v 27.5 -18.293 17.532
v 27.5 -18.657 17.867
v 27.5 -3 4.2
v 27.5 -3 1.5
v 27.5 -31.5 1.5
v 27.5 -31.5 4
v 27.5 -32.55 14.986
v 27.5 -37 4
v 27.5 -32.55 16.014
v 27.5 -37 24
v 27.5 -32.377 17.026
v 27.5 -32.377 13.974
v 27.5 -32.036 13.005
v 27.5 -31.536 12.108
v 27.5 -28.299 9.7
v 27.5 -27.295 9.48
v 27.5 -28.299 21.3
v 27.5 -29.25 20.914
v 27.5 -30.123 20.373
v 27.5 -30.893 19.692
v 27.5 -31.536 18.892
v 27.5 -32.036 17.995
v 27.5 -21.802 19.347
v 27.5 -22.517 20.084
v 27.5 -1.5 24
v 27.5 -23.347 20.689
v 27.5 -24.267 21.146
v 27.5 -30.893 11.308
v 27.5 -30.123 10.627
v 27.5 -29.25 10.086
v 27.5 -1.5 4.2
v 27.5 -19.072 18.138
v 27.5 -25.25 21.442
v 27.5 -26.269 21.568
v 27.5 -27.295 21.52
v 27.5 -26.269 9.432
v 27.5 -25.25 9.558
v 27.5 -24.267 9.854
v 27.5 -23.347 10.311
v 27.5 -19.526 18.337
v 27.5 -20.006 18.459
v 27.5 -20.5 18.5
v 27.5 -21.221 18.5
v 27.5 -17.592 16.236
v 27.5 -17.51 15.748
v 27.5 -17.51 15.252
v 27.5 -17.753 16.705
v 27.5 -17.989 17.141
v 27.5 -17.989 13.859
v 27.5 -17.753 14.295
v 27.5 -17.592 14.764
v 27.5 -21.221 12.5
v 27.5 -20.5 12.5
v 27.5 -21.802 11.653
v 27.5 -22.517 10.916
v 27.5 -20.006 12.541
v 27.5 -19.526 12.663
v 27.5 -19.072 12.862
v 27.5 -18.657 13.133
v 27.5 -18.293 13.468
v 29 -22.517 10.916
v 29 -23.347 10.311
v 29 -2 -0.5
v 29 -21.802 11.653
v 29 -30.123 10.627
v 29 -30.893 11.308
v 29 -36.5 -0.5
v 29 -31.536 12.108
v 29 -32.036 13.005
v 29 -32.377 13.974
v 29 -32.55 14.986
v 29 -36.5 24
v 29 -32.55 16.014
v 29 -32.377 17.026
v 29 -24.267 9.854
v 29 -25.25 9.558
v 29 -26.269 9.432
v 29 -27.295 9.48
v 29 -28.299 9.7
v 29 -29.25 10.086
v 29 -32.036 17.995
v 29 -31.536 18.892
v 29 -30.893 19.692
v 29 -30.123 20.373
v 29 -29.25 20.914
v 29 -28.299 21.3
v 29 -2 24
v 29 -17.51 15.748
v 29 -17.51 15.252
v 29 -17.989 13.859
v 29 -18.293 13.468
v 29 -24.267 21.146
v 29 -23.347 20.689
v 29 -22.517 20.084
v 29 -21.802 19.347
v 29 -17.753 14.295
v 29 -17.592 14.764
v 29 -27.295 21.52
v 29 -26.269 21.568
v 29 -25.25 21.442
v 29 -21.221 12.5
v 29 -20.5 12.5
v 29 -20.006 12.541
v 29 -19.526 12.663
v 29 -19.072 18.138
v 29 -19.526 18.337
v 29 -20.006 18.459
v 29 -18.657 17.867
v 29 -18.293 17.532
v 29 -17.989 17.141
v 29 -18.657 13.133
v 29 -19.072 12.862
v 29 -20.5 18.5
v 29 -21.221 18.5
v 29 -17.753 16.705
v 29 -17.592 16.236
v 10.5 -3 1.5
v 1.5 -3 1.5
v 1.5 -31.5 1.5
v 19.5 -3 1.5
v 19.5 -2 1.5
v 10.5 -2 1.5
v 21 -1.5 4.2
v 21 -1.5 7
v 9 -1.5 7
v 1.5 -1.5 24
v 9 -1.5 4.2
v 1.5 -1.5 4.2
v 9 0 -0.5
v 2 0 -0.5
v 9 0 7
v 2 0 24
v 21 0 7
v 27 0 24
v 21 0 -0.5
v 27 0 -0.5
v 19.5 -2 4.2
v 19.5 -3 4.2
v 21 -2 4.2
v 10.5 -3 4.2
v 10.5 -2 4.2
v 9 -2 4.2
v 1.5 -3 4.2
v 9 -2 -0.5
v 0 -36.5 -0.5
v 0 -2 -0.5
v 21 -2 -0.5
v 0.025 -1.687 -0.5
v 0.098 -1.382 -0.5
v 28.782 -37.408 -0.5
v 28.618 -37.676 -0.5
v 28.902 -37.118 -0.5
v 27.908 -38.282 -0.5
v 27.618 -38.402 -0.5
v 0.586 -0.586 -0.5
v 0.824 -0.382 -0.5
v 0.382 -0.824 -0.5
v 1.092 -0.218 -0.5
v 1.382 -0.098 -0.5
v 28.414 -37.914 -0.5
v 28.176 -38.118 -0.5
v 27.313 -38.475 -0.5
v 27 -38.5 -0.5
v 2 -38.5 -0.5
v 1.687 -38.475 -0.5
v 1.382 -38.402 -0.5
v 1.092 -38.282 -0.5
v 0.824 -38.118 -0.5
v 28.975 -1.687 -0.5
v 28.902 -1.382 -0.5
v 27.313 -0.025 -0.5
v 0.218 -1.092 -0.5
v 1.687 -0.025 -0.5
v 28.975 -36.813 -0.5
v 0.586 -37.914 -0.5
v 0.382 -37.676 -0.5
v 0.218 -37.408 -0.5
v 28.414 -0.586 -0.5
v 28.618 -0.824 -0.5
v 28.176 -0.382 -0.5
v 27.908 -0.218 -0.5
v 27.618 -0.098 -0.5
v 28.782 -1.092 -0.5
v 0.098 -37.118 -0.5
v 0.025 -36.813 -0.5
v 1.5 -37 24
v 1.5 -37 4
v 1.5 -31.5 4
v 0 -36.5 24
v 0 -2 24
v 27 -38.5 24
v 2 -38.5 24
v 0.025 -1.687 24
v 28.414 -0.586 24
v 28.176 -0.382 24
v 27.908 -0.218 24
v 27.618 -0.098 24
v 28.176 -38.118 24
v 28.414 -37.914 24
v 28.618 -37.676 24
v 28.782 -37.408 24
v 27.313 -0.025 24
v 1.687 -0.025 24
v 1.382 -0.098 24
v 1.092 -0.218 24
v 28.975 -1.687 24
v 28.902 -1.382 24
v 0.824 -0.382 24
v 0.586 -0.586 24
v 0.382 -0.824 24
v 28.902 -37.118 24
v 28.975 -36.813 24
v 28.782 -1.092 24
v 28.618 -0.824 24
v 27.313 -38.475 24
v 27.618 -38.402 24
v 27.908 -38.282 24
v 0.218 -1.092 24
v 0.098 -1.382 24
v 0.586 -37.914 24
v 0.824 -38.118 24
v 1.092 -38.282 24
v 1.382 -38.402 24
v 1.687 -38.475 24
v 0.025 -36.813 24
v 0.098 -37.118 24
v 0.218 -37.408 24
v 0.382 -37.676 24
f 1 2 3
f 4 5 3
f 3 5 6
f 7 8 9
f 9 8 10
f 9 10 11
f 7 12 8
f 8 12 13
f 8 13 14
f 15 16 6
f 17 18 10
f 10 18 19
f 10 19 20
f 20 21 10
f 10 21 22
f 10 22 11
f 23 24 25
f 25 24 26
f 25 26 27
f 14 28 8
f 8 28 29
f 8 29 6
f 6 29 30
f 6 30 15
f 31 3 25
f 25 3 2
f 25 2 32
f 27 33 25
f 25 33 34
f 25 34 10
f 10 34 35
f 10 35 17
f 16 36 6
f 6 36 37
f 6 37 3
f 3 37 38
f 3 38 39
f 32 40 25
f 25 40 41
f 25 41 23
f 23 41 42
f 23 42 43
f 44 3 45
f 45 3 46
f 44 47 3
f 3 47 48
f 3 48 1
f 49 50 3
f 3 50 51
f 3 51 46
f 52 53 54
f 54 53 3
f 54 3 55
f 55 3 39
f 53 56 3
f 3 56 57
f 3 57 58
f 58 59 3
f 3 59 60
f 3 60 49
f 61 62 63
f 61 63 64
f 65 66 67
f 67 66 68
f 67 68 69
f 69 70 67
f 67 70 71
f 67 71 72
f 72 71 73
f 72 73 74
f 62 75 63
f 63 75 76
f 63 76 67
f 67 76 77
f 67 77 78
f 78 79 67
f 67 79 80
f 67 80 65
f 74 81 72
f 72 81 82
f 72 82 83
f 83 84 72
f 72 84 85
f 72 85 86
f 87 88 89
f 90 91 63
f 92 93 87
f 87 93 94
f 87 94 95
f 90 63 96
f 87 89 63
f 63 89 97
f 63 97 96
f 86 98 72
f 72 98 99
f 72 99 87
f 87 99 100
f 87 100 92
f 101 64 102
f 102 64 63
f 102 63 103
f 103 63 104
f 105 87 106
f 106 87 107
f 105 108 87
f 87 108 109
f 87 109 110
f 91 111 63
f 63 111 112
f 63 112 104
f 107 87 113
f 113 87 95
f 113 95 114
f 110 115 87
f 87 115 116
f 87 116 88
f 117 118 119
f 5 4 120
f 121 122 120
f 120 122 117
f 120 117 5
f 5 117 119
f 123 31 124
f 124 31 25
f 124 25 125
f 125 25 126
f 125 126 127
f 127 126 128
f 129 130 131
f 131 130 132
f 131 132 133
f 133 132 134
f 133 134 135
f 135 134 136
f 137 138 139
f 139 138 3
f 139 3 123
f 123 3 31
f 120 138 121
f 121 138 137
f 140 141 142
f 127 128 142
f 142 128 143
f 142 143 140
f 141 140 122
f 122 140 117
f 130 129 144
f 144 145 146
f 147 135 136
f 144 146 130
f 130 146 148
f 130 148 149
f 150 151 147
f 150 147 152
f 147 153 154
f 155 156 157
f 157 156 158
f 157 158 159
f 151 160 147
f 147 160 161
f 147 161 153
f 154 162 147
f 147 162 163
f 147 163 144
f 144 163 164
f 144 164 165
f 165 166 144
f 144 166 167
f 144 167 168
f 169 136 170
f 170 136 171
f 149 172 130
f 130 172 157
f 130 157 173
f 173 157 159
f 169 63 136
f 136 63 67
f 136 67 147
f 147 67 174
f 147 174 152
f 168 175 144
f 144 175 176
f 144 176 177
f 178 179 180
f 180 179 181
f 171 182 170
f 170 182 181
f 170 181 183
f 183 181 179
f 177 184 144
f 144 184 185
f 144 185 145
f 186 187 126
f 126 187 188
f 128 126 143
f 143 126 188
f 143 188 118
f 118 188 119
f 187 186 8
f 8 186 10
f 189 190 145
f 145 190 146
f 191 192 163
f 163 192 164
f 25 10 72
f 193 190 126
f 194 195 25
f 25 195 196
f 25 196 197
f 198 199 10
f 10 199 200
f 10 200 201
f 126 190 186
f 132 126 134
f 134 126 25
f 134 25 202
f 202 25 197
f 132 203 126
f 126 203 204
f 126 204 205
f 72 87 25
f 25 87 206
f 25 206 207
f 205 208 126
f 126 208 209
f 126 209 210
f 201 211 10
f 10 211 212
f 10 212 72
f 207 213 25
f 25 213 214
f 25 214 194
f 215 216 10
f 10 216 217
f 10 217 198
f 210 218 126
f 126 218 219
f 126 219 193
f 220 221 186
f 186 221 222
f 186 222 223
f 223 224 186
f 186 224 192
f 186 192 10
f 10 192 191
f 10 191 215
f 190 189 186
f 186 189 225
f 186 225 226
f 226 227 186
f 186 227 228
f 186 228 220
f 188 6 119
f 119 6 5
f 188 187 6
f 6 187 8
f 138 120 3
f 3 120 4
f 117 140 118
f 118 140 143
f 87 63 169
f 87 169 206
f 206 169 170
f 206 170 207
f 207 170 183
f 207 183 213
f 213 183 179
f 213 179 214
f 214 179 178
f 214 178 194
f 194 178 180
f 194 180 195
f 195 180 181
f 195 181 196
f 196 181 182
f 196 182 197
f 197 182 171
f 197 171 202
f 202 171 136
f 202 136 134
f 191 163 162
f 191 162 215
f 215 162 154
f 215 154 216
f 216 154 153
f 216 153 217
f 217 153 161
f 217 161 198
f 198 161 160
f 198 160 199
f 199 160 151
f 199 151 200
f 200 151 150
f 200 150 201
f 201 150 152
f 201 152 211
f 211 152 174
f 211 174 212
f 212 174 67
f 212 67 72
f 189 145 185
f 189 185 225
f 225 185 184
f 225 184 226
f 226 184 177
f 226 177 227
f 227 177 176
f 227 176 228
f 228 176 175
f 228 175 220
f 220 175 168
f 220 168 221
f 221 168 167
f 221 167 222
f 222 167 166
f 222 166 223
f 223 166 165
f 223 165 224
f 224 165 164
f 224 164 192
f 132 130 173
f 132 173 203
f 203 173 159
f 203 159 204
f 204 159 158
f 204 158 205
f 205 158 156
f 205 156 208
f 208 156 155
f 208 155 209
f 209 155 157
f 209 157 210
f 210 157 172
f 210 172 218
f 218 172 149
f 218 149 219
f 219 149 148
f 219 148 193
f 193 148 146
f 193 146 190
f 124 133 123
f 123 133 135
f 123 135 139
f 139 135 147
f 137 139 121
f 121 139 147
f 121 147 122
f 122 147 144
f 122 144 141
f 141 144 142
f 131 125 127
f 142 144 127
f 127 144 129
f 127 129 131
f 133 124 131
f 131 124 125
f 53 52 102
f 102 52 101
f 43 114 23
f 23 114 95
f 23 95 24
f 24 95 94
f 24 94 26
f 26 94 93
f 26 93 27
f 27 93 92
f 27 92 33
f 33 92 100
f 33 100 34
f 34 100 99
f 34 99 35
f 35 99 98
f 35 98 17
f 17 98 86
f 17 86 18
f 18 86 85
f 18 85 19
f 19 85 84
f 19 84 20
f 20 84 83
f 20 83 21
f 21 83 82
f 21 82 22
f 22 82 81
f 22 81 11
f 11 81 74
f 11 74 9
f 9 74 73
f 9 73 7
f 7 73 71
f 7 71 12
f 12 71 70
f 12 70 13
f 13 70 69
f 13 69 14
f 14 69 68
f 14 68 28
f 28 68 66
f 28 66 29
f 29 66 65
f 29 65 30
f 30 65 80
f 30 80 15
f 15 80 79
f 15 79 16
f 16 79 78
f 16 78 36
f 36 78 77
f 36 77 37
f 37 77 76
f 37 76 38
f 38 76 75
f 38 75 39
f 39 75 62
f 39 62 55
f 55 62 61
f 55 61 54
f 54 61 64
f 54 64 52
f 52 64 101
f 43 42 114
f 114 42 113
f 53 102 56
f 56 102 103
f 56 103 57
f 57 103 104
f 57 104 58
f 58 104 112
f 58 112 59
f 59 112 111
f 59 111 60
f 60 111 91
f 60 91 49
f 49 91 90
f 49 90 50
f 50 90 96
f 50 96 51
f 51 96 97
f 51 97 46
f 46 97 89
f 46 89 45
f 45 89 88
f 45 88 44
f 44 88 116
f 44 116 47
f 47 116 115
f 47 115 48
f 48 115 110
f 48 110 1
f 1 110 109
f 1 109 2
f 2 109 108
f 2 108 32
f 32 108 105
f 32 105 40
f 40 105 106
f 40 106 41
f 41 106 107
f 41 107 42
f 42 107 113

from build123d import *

# Parameters (mm, degrees)
SKETCH_1_W               = 29
SKETCH_1_H               = 38.5
EXTRUDE_1_DEPTH          = 24
SHELL_1_T                = -1.5
SKETCH_7_W               = 26
SKETCH_7_H               = 5.5
EXTRUDE_7_DEPTH          = 2.5
SKETCH_5_W               = 2.7
SKETCH_5_H               = 1.5
EXTRUDE_8_DEPTH          = 8
SKETCH_6_W               = 2.7
SKETCH_6_H               = 1.5
EXTRUDE_9_DEPTH          = 9
SKETCH_9_W               = 29
SKETCH_9_H               = 38.5
EXTRUDE_10_DEPTH         = 0.5
FILLET_3_R               = 2
CUT_EXTRUDE_8_DEPTH      = 1.5
CUT_EXTRUDE_8_DEPTH_BACK = 7
SKETCH_2_W               = 12
SKETCH_2_H               = 2
SKETCH_10_R              = 3
SKETCH_10_R_2            = 6.072147162
CUT_EXTRUDE_9_DEPTH      = 1.5


with BuildPart() as part:
    # 草图1 → 凸台-拉伸1 (new body)
    with BuildSketch(Plane.XY):
        with Locations((14.5, -19.25)):
            Rectangle(SKETCH_1_W, SKETCH_1_H)
    extrude(amount=EXTRUDE_1_DEPTH)

    # 抽壳1
    shell_1_openings = [part.faces().sort_by_distance(p)[0] for p in [
        (14.5, -19.25, 24),
    ]]
    offset(amount=SHELL_1_T, openings=shell_1_openings, kind=Kind.INTERSECTION)

    # 草图7 → 凸台-拉伸7 (add)
    with BuildSketch(Plane.XY.offset(1.5)):
        with Locations((14.5, -34.25)):
            Rectangle(SKETCH_7_W, SKETCH_7_H)
    extrude(amount=EXTRUDE_7_DEPTH)

    # 草图5 → 凸台-拉伸8 (add)
    with BuildSketch(Plane.ZY.offset(-27.5)):
        with Locations((2.85, -2.25)):
            Rectangle(SKETCH_5_W, SKETCH_5_H)
    extrude(amount=EXTRUDE_8_DEPTH)

    # 草图6 → 凸台-拉伸9 (add)
    with BuildSketch(Plane(origin=(1.5, 0, 0), x_dir=(0, 0, -1), z_dir=(1, 0, 0))):
        with Locations((-2.85, -2.25)):
            Rectangle(SKETCH_6_W, SKETCH_6_H)
    extrude(amount=EXTRUDE_9_DEPTH)

    # 草图9 → 凸台-拉伸10 (add)
    with BuildSketch(Plane(origin=(0, 0, 0), x_dir=(-1, 0, 0), z_dir=(0, 0, -1))):
        with Locations((-14.5, -19.25)):
            Rectangle(SKETCH_9_W, SKETCH_9_H)
    extrude(amount=EXTRUDE_10_DEPTH)

    # 圆角3
    fillet_3_edges = [part.edges().sort_by_distance(p)[0] for p in [
        (0, 0, 11.75),
        (29, 0, 11.75),
        (29, -38.5, 11.75),
        (0, -38.5, 11.75),
    ]]
    fillet(fillet_3_edges, radius=FILLET_3_R)

    # 草图2 → 切除-拉伸8 (cut, two sides: drawn at the far end of the back side and taken through both)
    with BuildSketch(Plane(origin=(0, 0, 0), x_dir=(-1, 0, 0), z_dir=(0, 0, -1)).offset(-CUT_EXTRUDE_8_DEPTH_BACK)):
        with Locations((-15, -1)):
            Rectangle(SKETCH_2_W, SKETCH_2_H)
    extrude(amount=CUT_EXTRUDE_8_DEPTH + CUT_EXTRUDE_8_DEPTH_BACK, mode=Mode.SUBTRACT)

    # 草图10 → 切除-拉伸9 (cut)
    with BuildSketch(Plane(origin=(29, 0, 0), x_dir=(0, 0, -1), z_dir=(1, 0, 0))):
        with Locations((-15.5, -20.5)):
            Circle(SKETCH_10_R)
        with Locations((-15.5, -26.5)):
            Circle(SKETCH_10_R_2)
        with BuildLine():
            ThreePointArc((-18.422516621, -21.177419071), (-18.48056621, -20.840917978), (-18.5, -20.5))
            Line((-18.5, -20.5), (-18.5, -21.220703536))
            ThreePointArc((-18.5, -21.220703536), (-18.461337395, -21.198919734), (-18.422516621, -21.177419071))
        make_face()
        with BuildLine():
            Line((-12.5, -21.220703536), (-12.5, -20.5))
            ThreePointArc((-12.5, -20.5), (-12.51943379, -20.840917978), (-12.577483379, -21.177419071))
            ThreePointArc((-12.577483379, -21.177419071), (-12.538662605, -21.198919734), (-12.5, -21.220703536))
        make_face()
    extrude(amount=-CUT_EXTRUDE_9_DEPTH, mode=Mode.SUBTRACT)


solid = part.part
